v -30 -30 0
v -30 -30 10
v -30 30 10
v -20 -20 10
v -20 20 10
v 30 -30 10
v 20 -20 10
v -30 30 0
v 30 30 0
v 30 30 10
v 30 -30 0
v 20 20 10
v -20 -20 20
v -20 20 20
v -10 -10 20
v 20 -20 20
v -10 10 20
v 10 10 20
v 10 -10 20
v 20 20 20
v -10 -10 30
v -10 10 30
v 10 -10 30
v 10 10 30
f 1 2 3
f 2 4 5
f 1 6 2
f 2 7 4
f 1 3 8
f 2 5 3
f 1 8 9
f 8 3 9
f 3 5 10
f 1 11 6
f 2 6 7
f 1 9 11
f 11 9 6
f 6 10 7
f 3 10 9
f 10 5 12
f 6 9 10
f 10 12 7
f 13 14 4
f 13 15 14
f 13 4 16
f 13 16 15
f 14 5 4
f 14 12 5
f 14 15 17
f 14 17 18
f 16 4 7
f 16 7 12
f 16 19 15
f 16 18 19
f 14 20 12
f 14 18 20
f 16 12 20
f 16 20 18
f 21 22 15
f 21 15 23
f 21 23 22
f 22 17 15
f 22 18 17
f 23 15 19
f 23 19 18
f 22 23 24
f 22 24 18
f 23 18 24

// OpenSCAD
// 3段の階段状ピラミッド

// 1段目 (底辺 60mm × 60mm × 高さ 10mm)
color("Red")
translate([-30, -30, 0])
cube([60, 60, 10]);

// 2段目 (40mm × 40mm × 高さ 10mm)
color("Green")
translate([-20, -20, 10])
cube([40, 40, 10]);

// 3段目 (20mm × 20mm × 高さ 10mm)
color("Blue")
translate([-10, -10, 20])
cube([20, 20, 10]);
